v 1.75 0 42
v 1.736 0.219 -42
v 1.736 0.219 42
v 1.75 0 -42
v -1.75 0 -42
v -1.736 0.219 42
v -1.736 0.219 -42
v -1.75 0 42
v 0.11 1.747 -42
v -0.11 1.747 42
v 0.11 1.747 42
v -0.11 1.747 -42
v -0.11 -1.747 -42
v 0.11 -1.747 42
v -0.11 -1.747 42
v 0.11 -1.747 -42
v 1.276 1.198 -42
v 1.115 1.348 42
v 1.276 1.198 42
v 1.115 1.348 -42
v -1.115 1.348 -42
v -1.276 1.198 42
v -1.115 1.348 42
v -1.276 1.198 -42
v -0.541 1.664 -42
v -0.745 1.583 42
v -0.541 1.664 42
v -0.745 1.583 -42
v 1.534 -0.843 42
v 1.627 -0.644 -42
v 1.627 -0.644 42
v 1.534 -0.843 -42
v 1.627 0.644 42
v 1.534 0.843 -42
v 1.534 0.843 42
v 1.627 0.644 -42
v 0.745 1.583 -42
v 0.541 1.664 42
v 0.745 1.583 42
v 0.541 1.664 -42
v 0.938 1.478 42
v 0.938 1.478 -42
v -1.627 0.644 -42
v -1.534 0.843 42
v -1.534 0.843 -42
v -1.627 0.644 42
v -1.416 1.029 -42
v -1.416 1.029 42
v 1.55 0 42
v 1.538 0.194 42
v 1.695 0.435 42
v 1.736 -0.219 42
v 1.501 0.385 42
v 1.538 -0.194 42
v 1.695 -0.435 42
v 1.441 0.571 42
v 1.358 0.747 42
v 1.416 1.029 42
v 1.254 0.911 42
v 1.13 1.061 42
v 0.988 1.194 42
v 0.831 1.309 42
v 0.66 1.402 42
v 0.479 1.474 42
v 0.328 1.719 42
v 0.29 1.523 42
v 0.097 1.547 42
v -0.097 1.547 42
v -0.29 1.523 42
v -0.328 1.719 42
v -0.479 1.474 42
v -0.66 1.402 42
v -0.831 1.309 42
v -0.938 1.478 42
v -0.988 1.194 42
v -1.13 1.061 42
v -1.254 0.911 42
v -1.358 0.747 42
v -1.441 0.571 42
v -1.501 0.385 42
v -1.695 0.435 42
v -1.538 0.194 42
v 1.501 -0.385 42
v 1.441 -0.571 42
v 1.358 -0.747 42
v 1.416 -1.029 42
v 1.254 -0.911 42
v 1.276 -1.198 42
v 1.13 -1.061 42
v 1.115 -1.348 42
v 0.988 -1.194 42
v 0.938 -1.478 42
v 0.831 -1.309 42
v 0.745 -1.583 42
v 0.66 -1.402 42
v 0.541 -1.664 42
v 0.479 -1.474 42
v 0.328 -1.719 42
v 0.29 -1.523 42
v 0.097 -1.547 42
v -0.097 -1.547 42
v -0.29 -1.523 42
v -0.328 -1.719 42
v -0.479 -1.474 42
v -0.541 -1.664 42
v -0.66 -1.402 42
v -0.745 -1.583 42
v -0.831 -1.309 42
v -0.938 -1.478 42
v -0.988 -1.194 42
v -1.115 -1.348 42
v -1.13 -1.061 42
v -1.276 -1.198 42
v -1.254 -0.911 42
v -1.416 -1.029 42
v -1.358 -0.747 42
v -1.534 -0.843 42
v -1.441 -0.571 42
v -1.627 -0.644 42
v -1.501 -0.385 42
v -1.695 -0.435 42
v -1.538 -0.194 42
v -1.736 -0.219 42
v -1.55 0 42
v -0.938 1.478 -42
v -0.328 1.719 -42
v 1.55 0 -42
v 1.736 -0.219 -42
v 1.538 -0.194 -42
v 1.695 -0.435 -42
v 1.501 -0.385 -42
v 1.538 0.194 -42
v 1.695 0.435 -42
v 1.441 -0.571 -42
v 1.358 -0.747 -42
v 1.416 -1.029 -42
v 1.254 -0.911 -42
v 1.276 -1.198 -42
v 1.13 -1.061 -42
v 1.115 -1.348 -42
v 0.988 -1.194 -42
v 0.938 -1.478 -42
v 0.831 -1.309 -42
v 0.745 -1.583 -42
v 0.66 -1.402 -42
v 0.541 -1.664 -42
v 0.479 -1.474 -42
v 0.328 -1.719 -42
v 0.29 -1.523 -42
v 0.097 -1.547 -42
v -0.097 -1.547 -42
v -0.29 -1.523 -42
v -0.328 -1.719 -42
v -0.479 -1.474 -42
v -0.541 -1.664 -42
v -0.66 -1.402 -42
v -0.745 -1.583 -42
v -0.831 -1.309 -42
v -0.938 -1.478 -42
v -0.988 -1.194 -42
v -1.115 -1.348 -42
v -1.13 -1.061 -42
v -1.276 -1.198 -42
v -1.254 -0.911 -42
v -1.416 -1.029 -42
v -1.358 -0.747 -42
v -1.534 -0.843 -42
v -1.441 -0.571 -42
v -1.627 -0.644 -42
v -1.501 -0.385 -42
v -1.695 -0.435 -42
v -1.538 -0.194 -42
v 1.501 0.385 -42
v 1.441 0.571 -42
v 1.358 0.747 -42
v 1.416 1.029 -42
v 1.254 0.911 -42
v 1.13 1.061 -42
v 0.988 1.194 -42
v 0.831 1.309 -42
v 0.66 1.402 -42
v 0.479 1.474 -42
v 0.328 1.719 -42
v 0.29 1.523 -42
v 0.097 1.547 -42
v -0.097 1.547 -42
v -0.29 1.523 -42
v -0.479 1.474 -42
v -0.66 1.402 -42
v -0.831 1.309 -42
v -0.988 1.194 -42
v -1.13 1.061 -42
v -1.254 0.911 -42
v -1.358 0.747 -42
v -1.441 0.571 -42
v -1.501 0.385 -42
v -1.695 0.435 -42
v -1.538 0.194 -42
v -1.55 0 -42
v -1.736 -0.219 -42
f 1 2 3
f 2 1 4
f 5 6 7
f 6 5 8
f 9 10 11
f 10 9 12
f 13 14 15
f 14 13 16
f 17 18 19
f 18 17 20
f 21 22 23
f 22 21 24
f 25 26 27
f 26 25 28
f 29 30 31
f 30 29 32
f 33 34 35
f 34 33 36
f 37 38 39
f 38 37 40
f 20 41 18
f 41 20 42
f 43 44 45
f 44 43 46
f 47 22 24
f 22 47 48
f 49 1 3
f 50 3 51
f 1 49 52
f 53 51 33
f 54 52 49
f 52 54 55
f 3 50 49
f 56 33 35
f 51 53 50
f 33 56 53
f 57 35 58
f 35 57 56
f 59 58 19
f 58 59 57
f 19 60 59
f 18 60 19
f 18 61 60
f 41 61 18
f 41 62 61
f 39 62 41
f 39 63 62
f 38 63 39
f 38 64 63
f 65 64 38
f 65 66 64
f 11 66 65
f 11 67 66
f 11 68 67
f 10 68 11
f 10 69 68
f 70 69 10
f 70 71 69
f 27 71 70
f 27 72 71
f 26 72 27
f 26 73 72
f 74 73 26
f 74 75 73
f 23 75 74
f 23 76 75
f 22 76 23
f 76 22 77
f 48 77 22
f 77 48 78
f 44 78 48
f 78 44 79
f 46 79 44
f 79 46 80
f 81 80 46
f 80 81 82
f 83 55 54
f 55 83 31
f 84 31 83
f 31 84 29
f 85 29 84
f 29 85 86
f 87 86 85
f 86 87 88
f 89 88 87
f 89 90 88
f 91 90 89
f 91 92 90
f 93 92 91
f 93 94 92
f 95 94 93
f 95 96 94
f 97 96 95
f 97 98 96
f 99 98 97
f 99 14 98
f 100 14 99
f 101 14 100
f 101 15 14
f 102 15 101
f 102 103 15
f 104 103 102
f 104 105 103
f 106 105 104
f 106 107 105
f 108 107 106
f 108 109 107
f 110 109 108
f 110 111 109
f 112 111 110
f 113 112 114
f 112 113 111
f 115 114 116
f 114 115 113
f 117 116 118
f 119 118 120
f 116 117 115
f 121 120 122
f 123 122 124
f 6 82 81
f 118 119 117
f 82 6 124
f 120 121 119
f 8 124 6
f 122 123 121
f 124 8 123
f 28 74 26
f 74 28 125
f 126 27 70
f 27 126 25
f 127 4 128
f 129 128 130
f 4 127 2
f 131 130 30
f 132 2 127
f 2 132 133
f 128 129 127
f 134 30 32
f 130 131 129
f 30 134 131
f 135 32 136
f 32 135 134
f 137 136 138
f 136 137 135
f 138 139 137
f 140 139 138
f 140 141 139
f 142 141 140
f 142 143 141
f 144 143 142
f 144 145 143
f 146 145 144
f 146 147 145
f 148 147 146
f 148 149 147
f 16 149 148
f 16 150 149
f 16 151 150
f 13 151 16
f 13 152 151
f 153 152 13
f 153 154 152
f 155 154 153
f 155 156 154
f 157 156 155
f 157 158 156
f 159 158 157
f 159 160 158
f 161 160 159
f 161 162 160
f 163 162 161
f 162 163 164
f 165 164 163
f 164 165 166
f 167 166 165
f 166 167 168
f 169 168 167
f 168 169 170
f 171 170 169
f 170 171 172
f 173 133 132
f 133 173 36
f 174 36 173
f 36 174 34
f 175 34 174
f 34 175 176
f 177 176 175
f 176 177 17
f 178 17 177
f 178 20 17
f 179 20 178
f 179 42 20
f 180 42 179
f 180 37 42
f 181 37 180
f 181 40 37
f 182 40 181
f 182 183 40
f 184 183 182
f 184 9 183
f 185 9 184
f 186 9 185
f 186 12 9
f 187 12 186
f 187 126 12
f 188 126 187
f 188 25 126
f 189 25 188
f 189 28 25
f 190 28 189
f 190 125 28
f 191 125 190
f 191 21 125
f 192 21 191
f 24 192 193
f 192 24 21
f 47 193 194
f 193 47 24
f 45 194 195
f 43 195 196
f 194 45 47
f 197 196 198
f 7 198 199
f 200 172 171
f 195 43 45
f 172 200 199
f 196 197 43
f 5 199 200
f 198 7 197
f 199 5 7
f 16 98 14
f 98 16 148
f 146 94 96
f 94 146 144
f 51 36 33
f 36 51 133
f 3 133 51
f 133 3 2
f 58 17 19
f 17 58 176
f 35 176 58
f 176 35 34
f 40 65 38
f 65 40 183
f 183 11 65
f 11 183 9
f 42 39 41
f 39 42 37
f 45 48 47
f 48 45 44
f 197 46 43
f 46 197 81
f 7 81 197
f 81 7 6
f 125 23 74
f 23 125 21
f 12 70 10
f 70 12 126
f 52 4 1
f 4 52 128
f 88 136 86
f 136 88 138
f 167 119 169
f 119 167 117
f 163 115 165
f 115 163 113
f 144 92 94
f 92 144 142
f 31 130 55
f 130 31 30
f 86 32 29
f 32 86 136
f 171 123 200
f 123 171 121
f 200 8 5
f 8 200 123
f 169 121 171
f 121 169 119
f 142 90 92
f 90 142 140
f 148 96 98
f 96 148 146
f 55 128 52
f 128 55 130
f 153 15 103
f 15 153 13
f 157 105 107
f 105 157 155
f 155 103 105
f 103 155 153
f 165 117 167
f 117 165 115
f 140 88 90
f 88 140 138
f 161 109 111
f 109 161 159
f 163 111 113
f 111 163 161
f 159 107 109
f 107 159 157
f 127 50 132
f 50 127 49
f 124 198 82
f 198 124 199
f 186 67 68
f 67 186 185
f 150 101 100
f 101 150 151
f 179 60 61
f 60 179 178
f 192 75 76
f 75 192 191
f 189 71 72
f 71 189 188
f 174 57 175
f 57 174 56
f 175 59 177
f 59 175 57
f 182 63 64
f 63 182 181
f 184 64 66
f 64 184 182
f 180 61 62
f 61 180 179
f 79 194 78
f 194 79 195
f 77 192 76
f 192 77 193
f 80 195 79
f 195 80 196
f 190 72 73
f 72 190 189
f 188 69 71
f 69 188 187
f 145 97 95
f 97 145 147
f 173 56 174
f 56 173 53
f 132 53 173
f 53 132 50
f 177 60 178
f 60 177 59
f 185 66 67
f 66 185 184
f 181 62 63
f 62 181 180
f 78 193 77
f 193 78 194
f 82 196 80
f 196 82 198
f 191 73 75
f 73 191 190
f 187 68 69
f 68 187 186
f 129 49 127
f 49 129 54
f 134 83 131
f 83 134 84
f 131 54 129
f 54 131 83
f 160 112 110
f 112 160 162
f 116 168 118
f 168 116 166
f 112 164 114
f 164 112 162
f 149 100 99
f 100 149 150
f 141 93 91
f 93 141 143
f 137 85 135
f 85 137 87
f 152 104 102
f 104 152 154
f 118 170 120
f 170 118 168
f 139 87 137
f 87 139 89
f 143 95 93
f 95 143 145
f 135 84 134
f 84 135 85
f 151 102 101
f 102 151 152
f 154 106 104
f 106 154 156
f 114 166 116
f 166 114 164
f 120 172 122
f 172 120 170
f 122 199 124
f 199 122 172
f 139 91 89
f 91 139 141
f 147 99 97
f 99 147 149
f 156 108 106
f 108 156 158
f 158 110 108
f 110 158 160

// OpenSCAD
$fn = 50;


difference() {
	union() {
		translate(v = [0, 0, -42.0000000000]) {
			cylinder(h = 84, r = 1.7500000000);
		}
	}
	union() {
		translate(v = [0, 0, -100.0000000000]) {
			cylinder(h = 200, r = 1.5500000000);
		}
	}
}
